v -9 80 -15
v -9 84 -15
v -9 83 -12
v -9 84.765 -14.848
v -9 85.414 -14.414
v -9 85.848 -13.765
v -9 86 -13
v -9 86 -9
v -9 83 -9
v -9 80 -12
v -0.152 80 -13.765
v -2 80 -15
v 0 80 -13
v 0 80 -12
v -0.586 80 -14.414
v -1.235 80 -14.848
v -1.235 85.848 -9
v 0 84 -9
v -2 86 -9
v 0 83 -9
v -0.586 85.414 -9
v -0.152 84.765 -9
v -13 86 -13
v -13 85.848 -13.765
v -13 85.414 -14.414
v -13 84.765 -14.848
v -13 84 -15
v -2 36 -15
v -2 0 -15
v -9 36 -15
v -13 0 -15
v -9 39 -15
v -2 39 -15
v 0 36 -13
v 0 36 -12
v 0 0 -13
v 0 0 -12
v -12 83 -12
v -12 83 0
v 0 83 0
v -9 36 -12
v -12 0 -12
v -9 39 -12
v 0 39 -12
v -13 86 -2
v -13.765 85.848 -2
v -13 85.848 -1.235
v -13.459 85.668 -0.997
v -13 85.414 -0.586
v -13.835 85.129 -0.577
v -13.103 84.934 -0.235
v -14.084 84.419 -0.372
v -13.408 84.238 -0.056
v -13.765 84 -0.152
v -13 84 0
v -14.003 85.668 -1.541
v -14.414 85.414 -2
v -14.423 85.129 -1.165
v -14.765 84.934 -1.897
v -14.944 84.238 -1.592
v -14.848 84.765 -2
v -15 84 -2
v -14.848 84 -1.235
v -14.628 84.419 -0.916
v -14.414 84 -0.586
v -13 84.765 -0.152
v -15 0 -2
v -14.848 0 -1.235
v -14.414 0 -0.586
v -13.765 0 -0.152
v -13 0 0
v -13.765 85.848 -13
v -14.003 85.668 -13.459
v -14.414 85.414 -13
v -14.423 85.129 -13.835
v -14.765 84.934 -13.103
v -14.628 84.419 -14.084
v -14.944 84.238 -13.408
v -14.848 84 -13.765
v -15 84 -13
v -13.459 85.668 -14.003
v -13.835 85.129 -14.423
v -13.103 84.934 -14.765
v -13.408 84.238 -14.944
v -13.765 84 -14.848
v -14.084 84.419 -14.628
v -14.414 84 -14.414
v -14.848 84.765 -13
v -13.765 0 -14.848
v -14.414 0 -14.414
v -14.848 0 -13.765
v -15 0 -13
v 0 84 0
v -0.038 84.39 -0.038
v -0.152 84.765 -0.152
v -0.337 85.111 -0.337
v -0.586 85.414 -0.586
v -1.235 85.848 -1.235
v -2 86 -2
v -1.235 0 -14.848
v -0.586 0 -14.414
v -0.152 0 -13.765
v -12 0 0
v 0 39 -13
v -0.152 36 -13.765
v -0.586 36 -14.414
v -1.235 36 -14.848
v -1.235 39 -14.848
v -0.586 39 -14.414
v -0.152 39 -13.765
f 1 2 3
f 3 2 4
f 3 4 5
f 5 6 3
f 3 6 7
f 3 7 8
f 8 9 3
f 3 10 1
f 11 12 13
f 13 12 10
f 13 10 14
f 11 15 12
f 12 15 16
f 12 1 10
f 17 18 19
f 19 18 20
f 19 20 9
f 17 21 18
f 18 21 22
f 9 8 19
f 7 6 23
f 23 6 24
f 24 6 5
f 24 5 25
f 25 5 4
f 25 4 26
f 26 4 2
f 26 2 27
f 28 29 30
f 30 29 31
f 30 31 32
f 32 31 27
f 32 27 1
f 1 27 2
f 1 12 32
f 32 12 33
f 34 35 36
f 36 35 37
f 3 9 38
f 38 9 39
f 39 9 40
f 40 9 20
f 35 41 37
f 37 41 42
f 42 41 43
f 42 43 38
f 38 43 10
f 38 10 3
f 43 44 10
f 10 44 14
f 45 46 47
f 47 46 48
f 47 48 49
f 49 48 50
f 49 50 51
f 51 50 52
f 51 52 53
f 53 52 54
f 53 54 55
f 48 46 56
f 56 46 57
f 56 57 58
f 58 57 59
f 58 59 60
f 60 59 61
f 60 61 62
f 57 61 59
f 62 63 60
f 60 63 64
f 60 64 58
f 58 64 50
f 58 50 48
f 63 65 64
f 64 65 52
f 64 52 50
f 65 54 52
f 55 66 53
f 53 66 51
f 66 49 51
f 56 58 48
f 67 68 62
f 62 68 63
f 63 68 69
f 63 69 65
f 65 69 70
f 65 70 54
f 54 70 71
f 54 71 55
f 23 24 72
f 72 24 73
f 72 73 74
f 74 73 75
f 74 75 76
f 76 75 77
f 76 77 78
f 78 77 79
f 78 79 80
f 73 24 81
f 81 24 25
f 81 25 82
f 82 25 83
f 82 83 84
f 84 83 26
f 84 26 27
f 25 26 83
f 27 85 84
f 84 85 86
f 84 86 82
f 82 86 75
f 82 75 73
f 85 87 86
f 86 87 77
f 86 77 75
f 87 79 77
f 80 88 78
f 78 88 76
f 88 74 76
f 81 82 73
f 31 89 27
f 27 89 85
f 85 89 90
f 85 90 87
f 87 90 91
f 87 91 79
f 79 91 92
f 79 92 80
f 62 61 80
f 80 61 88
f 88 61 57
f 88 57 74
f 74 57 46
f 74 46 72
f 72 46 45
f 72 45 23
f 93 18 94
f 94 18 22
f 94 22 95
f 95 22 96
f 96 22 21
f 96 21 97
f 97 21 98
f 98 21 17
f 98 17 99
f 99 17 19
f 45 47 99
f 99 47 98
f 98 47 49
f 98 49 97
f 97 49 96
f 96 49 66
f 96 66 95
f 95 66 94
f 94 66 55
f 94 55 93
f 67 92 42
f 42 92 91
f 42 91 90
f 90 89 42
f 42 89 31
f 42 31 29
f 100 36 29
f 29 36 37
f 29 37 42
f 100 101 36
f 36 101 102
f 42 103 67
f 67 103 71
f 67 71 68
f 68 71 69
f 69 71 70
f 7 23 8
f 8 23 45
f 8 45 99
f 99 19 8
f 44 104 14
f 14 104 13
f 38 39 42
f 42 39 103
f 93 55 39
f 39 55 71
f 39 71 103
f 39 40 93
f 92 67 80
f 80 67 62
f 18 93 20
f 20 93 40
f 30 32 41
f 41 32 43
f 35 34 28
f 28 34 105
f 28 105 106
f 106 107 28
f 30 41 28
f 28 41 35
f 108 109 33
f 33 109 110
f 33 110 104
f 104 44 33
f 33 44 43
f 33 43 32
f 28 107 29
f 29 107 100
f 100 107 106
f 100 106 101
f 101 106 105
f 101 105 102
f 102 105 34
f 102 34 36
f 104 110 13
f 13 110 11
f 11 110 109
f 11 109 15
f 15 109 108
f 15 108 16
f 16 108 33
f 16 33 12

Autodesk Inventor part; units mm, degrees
ref_plane "YZ Plane" through (0, 0, 0) normal (1, 0, 0) x (0, 1, 0)
ref_plane "XZ Plane" through (0, 0, 0) normal (0, 1, 0) x (-1, 0, 0)
ref_plane "XY Plane" through (0, 0, 0) normal (0, 0, 1) x (1, 0, 0)
sketch "Sketch1" plane through (0, 0, 0) normal (0, 1, 0) x (-1, 0, 0)
  line L0 (15, 0) -> (15, -15)
  line L1 (15, -15) -> (0, -15)
  line L2 (0, -15) -> (0, -12)
  line L3 (0, -12) -> (12, -12)
  line L4 (12, -12) -> (12, 0)
  line L5 (12, 0) -> (15, 0)
  point P0 (0, 0)
  dimension "d0" = 15
  dimension "d1" = 15
  dimension "d10" = 3
  dimension "d11" = 12
  dimension "d12" = 12
extrude "Extrusion1" add sketch "Sketch1" along normal blind 86
sketch "Sketch4" plane through (-12, 0, 0) normal (1, 0, 0) x (0, 0, -1)
  line L0 (0, 0) -> (0, 86) projected
  line L1 (12, 0) -> (12, 86) projected
  line L2 (0, 86) -> (12, 86)
  line L3 (12, 86) -> (12, 83)
  line L4 (12, 83) -> (0, 83)
  line L5 (0, 83) -> (0, 86)
  dimension "d13" = 3
extrude "Extrusion3" add sketch "Sketch4" along normal blind 3
sketch "Sketch6" plane through (-12, 0, -12) normal (0, 0, 1) x (1, 0, 0)
  line L0 (3, 86) -> (12, 86) projected
  line L1 (12, 86) -> (3, 86)
  line L2 (3, 86) -> (3, 83)
  line L3 (3, 83) -> (12, 83)
  line L4 (12, 83) -> (12, 86)
  point P0 (12, 0)
extrude "Extrusion4" add sketch "Sketch6" along normal blind 12
fillet "Fillet3" radius 2 7 edges at (-7.5, 86, -15) (-15, 86, -7.5) (-15, 43, -15) (0, 43, -15) (-7.5, 86, 0) (0, 86, -7.5) (-15, 43, 0)
sketch "Sketch11" plane through (0, 86, 0) normal (0, 1, 0) x (1, 0, 0)
  arc A0 (-15, 2) -> (-13, 0) centre (-13, 2) ccw projected
  line L0 (0, 10.8348) -> (0, 14)
  line L1 (-9, 9) -> (0, 9)
  line L2 (0, 9) -> (0, 10.8348)
  line L3 (-9, 15) -> (0, 15)
  line L4 (0, 15) -> (0, 9)
  line L5 (-9, 15) -> (-9, 9)
  line L6 (0, 0) -> (0, 13) projected
  point P0 (-13, 0)
  point P1 (0, 15)
extrude "Extrusion7" cut sketch "Sketch11" against normal blind 6
sketch "Sketch12" plane through (-12, 0, -12) normal (0, 0, 1) x (1, 0, 0)
  line L0 (12, 33) -> (21, 33) construction
  line L1 (3, 39) -> (12, 39)
  line L2 (12, 0) -> (12, 80) projected
  line L3 (3, 36) -> (12, 36)
  line L4 (3, 39) -> (3, 36)
extrude "Extrusion8" cut sketch "Sketch12" against normal through all
properties part number "DoosjeHoeken" material "ABS Plastic"
